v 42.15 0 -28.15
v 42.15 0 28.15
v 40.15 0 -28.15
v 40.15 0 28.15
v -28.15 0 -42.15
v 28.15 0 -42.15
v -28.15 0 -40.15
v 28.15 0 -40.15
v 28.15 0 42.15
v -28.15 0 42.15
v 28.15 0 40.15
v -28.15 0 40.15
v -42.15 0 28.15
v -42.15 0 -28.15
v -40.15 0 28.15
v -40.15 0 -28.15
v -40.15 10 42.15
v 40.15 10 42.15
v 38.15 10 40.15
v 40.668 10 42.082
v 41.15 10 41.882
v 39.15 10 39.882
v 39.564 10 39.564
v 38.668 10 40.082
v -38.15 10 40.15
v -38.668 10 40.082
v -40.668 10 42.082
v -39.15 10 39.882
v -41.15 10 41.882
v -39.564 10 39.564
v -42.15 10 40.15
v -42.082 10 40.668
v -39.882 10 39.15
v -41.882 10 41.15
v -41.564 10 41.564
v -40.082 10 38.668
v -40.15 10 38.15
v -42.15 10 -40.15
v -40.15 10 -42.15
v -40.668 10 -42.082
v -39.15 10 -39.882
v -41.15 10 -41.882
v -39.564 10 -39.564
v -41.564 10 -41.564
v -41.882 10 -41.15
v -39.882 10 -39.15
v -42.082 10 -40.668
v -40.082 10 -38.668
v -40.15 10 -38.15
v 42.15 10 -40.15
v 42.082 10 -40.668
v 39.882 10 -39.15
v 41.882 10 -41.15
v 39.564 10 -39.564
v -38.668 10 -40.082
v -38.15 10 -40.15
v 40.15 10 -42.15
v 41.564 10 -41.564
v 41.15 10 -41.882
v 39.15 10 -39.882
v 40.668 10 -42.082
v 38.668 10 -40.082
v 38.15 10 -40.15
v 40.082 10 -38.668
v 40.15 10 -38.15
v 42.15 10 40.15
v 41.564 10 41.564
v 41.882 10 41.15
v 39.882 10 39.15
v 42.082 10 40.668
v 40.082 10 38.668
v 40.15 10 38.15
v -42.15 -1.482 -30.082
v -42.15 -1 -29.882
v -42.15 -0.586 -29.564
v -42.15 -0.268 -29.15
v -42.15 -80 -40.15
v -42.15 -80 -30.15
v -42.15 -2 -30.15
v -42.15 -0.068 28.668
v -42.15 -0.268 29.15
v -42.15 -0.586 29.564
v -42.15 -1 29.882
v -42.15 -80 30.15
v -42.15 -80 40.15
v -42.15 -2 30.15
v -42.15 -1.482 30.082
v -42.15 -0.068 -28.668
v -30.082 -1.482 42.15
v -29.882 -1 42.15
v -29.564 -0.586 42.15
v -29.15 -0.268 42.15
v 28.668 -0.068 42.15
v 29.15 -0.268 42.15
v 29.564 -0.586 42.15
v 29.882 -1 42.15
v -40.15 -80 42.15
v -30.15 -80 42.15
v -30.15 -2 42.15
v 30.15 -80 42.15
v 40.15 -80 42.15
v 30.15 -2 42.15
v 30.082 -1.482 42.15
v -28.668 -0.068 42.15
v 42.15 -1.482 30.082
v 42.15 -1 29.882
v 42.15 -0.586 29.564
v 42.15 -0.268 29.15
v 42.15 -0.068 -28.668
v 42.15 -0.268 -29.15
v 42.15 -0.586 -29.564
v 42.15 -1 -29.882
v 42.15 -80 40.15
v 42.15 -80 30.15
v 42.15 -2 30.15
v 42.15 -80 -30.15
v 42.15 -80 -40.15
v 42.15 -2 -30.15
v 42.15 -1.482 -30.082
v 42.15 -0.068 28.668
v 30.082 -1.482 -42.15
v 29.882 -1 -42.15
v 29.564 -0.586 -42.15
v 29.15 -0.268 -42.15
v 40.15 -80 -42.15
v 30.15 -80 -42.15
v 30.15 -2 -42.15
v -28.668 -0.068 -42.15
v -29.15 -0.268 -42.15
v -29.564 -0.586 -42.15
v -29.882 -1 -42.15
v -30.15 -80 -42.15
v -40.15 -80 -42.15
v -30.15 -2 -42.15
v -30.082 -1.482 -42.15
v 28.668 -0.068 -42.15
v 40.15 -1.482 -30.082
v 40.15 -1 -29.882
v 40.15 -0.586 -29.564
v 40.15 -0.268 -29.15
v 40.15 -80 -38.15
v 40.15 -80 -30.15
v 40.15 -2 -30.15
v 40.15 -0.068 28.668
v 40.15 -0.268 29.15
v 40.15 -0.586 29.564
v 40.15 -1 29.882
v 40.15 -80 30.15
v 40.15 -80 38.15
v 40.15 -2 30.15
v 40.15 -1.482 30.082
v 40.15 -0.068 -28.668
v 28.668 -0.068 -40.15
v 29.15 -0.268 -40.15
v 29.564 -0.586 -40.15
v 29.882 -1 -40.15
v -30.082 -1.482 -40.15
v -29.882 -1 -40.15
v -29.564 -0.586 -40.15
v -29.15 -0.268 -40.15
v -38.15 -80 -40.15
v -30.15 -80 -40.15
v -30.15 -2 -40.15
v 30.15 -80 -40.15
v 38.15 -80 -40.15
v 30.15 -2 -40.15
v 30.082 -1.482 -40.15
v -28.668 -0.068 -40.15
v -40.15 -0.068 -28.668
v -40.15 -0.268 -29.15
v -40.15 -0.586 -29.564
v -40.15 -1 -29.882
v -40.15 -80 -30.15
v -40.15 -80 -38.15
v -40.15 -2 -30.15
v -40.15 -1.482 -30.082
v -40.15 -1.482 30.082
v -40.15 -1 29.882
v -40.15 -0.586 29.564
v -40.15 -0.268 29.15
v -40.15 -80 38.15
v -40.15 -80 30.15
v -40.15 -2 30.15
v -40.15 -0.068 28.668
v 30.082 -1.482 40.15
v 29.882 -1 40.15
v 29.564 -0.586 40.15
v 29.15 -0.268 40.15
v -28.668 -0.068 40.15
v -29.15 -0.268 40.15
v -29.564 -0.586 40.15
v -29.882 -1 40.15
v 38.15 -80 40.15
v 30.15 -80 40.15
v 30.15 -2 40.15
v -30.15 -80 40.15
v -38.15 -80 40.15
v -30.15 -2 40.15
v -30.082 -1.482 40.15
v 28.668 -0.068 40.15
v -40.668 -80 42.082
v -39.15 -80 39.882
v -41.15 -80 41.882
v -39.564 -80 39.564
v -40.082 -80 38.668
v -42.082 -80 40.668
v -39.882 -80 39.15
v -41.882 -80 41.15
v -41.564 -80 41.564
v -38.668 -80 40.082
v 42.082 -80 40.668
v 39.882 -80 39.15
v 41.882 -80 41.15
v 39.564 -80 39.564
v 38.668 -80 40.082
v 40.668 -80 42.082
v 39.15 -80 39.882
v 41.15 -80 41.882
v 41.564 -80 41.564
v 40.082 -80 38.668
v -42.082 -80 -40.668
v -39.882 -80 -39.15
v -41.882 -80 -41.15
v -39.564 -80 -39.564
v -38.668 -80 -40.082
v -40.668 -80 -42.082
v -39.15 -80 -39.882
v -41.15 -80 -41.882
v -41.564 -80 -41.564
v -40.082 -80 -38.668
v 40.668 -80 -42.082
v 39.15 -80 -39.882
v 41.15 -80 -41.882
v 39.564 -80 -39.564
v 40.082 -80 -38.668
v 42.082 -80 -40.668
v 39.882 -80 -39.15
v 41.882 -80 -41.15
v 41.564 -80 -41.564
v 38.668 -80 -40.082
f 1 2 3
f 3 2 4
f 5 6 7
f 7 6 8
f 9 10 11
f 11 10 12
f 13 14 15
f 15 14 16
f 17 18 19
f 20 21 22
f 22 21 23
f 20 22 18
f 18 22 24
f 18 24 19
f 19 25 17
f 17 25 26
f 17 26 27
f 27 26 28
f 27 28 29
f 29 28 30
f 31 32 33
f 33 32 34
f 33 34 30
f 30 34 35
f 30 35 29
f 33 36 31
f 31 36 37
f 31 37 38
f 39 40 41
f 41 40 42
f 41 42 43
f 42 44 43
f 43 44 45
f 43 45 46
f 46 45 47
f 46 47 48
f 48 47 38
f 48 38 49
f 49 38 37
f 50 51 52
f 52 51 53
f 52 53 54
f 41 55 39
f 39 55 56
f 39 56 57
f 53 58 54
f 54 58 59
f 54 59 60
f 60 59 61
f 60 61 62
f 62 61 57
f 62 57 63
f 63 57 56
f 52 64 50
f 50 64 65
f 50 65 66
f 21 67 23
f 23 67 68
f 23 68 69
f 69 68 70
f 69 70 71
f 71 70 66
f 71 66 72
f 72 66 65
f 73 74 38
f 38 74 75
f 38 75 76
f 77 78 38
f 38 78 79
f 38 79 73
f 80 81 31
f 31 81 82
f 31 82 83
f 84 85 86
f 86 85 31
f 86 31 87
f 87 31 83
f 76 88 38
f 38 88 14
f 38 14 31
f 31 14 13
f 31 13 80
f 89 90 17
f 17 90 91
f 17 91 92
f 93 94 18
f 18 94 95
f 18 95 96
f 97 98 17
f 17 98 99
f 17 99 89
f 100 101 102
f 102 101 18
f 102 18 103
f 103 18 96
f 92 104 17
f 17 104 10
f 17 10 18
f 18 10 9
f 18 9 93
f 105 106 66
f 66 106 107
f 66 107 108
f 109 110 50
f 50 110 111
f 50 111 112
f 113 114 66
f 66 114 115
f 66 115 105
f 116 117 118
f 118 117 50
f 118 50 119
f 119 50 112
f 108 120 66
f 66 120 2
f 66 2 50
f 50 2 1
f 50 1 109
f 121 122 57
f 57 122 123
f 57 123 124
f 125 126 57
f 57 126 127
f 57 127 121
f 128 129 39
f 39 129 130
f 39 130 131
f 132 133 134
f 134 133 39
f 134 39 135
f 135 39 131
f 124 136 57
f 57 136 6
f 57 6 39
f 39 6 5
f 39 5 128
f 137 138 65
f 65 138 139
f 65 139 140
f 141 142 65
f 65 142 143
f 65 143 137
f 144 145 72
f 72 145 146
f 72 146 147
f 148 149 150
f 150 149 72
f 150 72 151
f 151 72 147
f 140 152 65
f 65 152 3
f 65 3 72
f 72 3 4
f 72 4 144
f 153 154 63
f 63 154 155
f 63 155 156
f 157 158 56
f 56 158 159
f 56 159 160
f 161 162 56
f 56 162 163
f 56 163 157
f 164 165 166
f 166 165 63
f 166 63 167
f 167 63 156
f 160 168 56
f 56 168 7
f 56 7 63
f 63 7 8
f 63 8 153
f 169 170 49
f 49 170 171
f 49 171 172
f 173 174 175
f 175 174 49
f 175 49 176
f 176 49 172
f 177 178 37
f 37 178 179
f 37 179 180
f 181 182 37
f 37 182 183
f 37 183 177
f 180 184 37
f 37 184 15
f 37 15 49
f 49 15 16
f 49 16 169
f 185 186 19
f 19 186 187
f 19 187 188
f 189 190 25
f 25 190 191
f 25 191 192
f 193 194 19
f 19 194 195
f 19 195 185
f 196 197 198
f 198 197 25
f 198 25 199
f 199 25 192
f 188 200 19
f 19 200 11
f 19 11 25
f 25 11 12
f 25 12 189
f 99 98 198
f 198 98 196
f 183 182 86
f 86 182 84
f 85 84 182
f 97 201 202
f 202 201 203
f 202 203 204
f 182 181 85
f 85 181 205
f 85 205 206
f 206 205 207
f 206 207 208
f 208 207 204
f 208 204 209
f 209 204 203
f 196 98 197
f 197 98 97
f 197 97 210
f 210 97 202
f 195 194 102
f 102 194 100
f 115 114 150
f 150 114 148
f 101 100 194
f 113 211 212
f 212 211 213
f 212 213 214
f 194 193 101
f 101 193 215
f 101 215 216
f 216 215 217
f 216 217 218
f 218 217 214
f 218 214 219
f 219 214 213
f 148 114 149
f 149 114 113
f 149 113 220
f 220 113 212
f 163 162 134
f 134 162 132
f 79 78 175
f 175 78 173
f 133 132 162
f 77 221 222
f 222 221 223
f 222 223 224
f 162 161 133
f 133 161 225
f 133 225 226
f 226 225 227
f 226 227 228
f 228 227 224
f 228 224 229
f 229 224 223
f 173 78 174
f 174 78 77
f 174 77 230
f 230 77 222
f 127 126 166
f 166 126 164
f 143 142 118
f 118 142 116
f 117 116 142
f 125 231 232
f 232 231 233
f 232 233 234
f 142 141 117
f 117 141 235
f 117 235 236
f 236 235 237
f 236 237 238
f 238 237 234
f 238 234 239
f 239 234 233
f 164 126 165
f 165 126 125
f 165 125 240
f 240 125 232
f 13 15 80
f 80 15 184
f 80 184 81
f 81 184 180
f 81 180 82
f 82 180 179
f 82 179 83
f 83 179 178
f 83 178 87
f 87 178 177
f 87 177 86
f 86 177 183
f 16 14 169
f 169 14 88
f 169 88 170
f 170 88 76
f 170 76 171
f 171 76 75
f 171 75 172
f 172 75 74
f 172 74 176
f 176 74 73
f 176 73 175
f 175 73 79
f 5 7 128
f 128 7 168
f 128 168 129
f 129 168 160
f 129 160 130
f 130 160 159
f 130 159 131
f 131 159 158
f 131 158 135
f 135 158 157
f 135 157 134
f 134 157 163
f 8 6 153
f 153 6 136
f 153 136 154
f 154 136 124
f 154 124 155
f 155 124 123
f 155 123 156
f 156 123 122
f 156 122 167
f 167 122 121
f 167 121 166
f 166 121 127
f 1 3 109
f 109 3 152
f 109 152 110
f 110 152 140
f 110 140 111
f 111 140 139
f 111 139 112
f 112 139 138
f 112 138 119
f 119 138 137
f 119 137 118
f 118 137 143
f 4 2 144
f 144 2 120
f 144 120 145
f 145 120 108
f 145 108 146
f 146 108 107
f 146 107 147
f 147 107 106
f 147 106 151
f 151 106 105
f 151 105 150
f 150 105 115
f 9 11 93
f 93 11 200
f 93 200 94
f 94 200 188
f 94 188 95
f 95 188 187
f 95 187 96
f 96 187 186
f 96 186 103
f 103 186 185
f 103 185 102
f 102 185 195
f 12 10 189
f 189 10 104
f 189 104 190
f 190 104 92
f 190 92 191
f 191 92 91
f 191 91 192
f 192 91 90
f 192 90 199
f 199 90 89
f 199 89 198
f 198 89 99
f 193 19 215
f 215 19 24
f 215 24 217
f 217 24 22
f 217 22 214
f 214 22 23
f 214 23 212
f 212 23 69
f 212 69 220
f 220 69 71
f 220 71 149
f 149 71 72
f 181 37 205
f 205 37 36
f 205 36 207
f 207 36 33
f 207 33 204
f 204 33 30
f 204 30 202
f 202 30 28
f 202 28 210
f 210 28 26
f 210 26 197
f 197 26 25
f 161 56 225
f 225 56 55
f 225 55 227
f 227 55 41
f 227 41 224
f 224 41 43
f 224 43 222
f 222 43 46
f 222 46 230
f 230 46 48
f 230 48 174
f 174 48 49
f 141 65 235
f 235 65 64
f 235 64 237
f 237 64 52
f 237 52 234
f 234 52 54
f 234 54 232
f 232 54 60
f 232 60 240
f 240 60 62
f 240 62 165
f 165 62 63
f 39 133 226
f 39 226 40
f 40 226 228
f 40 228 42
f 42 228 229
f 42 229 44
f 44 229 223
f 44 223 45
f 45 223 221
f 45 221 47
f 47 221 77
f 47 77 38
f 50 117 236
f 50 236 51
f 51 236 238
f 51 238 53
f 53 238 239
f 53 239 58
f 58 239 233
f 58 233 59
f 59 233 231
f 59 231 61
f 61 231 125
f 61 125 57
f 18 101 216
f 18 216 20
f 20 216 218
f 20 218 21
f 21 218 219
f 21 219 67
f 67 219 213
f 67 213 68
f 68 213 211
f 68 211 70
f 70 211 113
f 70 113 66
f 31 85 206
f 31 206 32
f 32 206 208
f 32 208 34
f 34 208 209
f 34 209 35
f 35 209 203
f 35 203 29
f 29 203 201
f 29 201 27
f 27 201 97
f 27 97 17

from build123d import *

# Parameters (mm, degrees)
SKETCH1_W            = 84.3
SKETCH1_H            = 84.3
SKETCH1_W_2          = 80.3
SKETCH1_H_2          = 80.3
BOSS_EXTRUDE1_DEPTH  = 10
BOSS_EXTRUDE2_DEPTH  = 80
MIRROR2_COPY_1_DEPTH = 80
FILLET1_R            = 2


with BuildPart() as part:
    # Sketch1 → Boss-Extrude1 (new body)
    with BuildSketch(Plane(origin=(0, 0, 0), x_dir=(1, 0, 0), z_dir=(0, 1, 0))):
        Rectangle(SKETCH1_W, SKETCH1_H)
        Rectangle(SKETCH1_W_2, SKETCH1_H_2, mode=Mode.SUBTRACT)
    extrude(amount=BOSS_EXTRUDE1_DEPTH)

    # Sketch2 → Boss-Extrude2 (add)
    with BuildSketch(Plane.XZ):
        Polygon((-42.15, 30.15), (-40.15, 30.15), (-40.15, 40.15), (-30.15, 40.15), (-30.15, 42.15), (-42.15, 42.15), align=None)
    boss_extrude2 = extrude(amount=BOSS_EXTRUDE2_DEPTH)

    # Mirror1: Boss-Extrude2 across plane
    add(boss_extrude2.mirror(Plane(origin=(0, 0, 0), x_dir=(0, 0, 1), z_dir=(1, 0, 0))))

    # Mirror2: Boss-Extrude2 across plane
    add(boss_extrude2.mirror(Plane.XY))

    # Mirror2 copy 1 sketch → Mirror2 copy 1 (add)
    with BuildSketch(Plane(origin=(0, 0, 0), x_dir=(-1, 0, 0), z_dir=(0, -1, 0))):
        Polygon((-42.15, 30.15), (-40.15, 30.15), (-40.15, 40.15), (-30.15, 40.15), (-30.15, 42.15), (-42.15, 42.15), align=None)
    extrude(amount=MIRROR2_COPY_1_DEPTH)

    # Fillet1
    fillet1_edges = [part.edges().sort_by_distance(p)[0] for p in [
        (40.15, -35, 40.15),
        (40.15, -35, -40.15),
        (-40.15, -35, -40.15),
        (-40.15, -35, 40.15),
        (-41.15, 0, 30.15),
        (-30.15, 0, 41.15),
        (30.15, 0, 41.15),
        (41.15, 0, 30.15),
        (-30.15, 0, -41.15),
        (-41.15, 0, -30.15),
        (-42.15, -35, -42.15),
        (42.15, -35, -42.15),
        (42.15, -35, 42.15),
        (-42.15, -35, 42.15),
        (41.15, 0, -30.15),
        (30.15, 0, -41.15),
    ]]
    fillet(fillet1_edges, radius=FILLET1_R)


solid = part.part
